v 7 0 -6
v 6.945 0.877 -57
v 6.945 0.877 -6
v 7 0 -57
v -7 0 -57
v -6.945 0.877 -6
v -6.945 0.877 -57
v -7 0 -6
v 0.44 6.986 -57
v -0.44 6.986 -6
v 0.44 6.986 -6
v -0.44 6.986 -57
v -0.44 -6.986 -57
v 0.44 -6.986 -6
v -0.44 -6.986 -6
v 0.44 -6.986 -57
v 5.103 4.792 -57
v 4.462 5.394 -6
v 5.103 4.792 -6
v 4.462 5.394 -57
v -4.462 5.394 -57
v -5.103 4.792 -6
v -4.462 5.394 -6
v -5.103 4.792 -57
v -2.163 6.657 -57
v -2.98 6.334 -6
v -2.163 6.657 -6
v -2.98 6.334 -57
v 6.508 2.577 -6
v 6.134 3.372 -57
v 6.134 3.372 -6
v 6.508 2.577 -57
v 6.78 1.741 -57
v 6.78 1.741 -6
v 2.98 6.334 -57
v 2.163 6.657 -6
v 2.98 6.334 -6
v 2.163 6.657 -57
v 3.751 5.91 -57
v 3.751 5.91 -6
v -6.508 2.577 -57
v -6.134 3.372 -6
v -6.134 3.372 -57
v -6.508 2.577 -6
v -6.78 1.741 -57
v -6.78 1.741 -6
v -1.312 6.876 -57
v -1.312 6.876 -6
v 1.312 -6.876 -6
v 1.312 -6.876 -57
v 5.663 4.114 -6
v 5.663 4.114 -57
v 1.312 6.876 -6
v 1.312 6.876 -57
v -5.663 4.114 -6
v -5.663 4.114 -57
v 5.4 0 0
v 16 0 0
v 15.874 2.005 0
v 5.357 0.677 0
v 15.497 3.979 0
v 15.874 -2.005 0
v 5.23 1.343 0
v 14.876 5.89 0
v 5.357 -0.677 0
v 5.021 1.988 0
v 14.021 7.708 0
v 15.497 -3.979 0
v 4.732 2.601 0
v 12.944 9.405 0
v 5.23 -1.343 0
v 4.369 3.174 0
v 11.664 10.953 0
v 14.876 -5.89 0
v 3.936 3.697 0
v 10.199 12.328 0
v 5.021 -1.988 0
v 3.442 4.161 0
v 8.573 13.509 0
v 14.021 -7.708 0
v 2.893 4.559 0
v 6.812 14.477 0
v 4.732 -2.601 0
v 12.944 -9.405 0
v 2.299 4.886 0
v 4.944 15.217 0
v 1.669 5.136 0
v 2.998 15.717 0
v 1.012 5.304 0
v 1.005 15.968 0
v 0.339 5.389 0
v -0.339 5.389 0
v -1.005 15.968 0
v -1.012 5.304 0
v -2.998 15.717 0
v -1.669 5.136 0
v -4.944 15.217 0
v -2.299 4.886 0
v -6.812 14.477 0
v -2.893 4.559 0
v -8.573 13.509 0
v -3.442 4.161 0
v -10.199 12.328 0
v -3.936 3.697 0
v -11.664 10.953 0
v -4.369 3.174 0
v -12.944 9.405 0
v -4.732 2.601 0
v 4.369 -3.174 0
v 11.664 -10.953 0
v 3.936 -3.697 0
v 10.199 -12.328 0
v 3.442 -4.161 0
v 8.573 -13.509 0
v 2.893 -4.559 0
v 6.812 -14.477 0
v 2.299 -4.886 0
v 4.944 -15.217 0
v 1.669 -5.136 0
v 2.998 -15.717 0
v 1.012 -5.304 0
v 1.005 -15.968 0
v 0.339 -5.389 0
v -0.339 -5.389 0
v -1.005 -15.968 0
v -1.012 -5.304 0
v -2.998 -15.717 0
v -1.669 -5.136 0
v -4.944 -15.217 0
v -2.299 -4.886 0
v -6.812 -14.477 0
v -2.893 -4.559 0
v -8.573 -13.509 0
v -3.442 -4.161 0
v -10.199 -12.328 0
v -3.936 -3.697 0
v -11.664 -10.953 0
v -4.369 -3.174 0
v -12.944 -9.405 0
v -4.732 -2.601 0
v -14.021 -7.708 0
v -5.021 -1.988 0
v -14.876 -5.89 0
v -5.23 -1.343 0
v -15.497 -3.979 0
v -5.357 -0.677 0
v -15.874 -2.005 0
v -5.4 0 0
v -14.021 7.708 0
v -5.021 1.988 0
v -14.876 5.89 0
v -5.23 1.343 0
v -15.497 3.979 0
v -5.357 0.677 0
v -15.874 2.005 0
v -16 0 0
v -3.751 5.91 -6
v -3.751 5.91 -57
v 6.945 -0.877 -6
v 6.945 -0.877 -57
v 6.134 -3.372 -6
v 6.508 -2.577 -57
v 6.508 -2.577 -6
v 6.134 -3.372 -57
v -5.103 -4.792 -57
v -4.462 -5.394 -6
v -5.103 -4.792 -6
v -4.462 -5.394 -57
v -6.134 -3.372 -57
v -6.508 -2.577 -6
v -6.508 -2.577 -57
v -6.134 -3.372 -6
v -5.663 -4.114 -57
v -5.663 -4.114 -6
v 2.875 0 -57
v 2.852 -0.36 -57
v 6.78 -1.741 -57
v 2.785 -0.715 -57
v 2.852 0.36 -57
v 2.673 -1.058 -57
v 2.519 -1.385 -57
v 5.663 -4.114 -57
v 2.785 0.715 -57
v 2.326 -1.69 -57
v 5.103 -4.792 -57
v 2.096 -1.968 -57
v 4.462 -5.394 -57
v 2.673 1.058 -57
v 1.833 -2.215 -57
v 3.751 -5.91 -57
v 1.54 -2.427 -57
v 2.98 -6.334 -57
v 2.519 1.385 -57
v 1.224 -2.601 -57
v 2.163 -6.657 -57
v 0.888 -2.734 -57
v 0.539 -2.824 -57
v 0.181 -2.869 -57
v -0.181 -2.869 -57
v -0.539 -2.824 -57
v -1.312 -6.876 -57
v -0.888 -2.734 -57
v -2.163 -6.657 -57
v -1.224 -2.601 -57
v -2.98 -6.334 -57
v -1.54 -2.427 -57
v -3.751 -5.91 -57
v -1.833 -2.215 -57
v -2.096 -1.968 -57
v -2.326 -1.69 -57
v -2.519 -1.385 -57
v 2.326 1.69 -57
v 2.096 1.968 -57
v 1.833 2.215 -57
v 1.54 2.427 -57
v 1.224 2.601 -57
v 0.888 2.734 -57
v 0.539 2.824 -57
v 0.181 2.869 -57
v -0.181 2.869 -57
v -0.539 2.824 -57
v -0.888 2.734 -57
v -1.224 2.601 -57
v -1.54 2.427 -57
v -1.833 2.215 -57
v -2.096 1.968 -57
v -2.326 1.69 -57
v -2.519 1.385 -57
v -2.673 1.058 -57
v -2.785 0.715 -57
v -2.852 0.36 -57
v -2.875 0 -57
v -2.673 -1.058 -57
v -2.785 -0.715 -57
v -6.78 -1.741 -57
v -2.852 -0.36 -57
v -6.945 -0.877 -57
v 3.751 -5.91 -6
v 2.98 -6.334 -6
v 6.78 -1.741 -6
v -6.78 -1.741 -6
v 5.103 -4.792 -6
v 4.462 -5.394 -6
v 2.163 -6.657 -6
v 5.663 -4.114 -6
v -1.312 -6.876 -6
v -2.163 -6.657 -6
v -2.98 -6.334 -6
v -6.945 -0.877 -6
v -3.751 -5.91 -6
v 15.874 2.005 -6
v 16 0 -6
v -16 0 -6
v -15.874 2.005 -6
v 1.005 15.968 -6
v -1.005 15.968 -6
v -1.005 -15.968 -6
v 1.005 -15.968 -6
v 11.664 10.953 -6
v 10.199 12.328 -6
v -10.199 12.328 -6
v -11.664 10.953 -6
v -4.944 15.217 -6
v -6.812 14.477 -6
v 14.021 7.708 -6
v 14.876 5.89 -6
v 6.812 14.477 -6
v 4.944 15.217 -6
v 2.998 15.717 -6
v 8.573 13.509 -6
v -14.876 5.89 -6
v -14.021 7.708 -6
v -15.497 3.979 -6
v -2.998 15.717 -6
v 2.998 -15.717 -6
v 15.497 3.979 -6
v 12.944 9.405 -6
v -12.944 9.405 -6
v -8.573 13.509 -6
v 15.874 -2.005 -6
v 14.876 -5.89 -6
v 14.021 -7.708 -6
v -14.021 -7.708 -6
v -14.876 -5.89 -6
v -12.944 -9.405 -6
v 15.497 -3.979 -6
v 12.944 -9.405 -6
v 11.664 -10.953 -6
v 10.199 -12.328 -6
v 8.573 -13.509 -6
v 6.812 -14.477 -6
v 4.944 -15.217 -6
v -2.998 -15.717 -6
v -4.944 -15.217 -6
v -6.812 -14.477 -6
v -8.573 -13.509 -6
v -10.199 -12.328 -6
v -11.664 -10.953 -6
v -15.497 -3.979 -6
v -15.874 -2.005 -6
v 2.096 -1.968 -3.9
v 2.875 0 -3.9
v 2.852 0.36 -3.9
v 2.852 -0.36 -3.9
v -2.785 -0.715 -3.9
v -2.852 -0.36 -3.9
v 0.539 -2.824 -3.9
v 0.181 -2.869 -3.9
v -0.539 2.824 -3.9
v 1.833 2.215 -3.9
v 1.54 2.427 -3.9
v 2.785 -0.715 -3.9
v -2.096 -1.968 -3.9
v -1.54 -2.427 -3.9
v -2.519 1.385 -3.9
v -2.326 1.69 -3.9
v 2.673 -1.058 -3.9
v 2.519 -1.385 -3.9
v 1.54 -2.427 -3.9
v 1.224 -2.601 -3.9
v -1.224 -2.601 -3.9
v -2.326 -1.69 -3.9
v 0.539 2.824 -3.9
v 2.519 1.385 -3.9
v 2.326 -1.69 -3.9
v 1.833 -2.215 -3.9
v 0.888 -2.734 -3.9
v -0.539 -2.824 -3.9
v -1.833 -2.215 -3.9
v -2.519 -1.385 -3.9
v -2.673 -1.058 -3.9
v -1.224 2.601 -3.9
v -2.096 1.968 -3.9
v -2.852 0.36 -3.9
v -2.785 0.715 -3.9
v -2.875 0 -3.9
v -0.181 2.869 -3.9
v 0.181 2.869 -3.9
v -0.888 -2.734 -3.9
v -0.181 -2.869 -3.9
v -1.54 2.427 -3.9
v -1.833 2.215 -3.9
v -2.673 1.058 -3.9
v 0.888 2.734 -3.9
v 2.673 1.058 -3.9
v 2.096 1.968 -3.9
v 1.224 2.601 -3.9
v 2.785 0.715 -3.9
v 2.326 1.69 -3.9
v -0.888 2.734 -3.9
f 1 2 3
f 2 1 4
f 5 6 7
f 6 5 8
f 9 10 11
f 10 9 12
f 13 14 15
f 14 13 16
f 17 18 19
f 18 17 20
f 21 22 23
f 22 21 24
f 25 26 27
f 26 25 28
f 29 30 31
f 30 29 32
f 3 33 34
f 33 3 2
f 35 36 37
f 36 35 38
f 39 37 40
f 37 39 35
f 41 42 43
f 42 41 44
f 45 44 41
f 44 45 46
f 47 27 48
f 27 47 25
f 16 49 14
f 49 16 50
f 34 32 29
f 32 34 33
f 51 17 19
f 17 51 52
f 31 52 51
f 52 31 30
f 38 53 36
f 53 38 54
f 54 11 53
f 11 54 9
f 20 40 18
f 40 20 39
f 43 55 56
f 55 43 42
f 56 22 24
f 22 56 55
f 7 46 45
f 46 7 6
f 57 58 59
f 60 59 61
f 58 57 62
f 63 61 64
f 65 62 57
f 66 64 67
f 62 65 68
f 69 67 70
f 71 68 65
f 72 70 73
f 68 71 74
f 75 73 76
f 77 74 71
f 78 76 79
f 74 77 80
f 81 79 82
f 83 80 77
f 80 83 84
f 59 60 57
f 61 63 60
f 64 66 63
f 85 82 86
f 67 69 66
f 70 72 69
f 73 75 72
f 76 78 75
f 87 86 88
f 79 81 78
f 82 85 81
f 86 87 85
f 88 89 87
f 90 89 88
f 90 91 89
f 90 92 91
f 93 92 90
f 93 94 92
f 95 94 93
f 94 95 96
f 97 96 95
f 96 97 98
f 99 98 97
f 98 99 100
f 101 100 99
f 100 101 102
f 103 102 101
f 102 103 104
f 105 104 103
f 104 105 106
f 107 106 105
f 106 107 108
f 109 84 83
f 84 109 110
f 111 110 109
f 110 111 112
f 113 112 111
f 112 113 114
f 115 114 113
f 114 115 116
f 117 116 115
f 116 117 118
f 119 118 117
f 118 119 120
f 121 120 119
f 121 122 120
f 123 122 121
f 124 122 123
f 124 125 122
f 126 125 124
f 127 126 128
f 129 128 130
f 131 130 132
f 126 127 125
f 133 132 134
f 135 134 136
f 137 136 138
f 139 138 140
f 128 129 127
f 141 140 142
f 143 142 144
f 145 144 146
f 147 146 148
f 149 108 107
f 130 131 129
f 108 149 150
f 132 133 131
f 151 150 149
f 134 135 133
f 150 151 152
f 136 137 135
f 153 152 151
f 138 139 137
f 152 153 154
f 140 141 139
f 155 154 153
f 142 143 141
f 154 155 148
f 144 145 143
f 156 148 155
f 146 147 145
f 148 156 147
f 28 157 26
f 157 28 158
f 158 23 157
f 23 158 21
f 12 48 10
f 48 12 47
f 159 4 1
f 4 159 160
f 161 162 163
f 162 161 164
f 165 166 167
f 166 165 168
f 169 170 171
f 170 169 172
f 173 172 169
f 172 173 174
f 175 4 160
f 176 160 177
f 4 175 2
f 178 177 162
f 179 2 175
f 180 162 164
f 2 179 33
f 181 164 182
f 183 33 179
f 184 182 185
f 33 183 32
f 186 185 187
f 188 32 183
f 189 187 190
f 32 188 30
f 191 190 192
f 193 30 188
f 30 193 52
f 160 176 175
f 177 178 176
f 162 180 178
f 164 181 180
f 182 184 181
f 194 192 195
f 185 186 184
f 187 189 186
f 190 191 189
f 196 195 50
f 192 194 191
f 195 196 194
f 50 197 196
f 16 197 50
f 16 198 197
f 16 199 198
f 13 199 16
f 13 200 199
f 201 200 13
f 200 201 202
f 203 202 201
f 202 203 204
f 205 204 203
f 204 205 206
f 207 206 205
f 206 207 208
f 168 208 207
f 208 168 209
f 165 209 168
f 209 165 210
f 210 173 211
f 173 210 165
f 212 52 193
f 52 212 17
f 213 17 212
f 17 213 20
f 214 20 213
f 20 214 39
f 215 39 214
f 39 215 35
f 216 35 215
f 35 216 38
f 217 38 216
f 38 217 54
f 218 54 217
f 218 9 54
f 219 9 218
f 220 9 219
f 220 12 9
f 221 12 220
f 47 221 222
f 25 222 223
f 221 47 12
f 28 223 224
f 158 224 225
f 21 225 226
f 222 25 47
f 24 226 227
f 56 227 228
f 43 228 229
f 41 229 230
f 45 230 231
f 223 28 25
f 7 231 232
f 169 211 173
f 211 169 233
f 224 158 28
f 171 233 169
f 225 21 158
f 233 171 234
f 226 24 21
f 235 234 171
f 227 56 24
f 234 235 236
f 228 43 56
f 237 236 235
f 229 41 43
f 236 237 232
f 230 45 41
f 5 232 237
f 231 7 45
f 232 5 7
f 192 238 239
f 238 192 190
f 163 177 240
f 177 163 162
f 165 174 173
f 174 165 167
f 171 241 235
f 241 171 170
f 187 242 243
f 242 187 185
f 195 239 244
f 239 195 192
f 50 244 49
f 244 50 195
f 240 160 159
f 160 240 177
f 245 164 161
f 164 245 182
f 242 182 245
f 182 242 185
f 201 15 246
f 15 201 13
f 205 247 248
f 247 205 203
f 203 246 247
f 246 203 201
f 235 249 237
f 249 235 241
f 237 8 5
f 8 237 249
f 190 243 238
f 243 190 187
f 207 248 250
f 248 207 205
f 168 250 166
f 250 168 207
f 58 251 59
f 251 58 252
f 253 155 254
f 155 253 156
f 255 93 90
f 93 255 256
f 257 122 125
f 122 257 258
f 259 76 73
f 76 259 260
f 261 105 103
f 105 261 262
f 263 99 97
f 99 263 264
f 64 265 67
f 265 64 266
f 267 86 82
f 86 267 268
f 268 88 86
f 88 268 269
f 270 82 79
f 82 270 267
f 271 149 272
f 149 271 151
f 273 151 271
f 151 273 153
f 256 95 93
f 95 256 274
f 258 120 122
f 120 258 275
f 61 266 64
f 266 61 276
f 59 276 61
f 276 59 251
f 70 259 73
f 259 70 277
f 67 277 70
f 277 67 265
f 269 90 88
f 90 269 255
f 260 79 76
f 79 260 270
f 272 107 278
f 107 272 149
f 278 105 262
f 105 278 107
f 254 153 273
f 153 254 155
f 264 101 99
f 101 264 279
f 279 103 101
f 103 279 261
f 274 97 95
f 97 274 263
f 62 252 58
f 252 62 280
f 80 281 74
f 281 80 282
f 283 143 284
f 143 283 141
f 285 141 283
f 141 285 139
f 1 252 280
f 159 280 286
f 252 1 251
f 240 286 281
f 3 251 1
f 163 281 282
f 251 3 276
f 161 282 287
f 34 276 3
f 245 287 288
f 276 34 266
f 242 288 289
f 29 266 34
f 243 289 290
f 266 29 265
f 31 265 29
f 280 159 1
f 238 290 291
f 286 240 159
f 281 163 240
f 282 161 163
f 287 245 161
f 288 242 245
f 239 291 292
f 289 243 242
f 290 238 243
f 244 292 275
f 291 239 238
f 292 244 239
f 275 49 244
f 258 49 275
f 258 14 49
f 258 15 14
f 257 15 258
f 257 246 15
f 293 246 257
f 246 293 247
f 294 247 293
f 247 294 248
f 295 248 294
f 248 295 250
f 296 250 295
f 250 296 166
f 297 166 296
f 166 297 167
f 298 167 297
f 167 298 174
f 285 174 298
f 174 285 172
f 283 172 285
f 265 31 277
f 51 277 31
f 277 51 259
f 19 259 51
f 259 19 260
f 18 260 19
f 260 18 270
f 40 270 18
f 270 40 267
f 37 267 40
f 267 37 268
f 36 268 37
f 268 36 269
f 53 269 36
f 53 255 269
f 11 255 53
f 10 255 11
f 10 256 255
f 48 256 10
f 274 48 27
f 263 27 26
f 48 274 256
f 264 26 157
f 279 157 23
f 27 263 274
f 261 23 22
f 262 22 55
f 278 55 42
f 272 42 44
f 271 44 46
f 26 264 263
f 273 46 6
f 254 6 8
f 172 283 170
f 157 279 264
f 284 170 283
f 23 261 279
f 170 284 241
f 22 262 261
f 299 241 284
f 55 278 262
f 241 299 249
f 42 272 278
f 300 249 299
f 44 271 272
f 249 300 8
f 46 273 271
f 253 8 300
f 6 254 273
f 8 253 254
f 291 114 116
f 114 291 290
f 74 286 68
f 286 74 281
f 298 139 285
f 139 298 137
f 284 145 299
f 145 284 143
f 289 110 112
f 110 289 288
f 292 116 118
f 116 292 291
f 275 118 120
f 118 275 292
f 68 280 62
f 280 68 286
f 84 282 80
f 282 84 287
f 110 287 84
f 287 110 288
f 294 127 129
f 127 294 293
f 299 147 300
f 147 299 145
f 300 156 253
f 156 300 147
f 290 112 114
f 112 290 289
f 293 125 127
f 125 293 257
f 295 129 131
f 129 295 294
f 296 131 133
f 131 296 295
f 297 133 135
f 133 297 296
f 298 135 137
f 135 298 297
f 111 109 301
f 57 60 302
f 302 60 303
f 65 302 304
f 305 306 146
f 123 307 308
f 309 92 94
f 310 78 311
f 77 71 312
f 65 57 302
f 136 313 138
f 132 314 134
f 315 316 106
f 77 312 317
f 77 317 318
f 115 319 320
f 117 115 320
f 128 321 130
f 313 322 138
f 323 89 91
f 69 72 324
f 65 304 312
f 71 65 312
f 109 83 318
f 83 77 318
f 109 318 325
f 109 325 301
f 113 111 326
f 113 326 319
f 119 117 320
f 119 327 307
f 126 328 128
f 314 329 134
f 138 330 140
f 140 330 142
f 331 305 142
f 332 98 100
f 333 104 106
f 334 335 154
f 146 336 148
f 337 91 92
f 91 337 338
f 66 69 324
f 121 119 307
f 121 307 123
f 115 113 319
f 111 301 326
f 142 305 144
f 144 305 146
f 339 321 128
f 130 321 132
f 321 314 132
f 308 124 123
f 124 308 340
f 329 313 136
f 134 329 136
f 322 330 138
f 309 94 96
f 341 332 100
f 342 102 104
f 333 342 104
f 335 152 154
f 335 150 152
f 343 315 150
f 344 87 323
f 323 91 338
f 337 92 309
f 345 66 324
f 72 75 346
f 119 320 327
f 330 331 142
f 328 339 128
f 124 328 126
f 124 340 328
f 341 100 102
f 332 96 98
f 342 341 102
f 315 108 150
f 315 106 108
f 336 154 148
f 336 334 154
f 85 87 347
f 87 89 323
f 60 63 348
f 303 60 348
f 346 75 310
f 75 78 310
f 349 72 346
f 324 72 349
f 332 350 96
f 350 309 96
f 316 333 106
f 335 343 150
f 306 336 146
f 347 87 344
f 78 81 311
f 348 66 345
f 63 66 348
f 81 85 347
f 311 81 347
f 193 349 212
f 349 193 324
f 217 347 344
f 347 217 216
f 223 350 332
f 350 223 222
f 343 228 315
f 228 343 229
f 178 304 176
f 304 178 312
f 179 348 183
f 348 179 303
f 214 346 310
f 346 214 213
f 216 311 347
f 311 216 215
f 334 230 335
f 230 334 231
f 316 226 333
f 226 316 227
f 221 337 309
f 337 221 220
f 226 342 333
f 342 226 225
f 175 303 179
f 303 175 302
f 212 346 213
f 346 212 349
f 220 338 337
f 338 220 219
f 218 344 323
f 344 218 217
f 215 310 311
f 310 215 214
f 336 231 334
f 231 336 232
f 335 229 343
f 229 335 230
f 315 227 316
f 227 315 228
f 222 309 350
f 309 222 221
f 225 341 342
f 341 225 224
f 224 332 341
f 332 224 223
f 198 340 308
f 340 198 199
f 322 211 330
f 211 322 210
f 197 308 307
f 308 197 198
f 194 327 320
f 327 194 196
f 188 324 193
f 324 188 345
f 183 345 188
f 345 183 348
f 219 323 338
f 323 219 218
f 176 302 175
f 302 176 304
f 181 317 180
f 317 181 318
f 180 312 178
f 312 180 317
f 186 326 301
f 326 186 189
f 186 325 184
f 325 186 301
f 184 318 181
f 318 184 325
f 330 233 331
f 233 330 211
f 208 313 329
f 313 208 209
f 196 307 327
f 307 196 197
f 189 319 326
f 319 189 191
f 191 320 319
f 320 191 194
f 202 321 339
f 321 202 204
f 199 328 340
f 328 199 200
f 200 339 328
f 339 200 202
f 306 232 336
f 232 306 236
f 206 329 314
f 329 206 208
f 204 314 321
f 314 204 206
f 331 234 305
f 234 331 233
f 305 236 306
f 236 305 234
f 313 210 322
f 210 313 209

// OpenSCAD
$fn = 50;


difference() {
	union() {
		translate(v = [0, 0, -57.0000000000]) {
			cylinder(h = 57, r = 7.0000000000);
		}
		translate(v = [0, 0, -6.0000000000]) {
			cylinder(h = 6, r = 16.0000000000);
		}
	}
	union() {
		translate(v = [0, 0, 0]) {
			rotate(a = [0, 0, 0]) {
				difference() {
					union() {
						#translate(v = [0, 0, -57.0000000000]) {
							cylinder(h = 57, r = 2.6000000000);
						}
						#translate(v = [0, 0, -3.9000000000]) {
							cylinder(h = 3.9000000000, r1 = 2.8750000000, r2 = 5.4000000000);
						}
						#translate(v = [0, 0, -57.0000000000]) {
							cylinder(h = 57, r = 2.8750000000);
						}
						#translate(v = [0, 0, -57.0000000000]) {
							cylinder(h = 57, r = 2.6000000000);
						}
					}
					union();
				}
			}
		}
	}
}
